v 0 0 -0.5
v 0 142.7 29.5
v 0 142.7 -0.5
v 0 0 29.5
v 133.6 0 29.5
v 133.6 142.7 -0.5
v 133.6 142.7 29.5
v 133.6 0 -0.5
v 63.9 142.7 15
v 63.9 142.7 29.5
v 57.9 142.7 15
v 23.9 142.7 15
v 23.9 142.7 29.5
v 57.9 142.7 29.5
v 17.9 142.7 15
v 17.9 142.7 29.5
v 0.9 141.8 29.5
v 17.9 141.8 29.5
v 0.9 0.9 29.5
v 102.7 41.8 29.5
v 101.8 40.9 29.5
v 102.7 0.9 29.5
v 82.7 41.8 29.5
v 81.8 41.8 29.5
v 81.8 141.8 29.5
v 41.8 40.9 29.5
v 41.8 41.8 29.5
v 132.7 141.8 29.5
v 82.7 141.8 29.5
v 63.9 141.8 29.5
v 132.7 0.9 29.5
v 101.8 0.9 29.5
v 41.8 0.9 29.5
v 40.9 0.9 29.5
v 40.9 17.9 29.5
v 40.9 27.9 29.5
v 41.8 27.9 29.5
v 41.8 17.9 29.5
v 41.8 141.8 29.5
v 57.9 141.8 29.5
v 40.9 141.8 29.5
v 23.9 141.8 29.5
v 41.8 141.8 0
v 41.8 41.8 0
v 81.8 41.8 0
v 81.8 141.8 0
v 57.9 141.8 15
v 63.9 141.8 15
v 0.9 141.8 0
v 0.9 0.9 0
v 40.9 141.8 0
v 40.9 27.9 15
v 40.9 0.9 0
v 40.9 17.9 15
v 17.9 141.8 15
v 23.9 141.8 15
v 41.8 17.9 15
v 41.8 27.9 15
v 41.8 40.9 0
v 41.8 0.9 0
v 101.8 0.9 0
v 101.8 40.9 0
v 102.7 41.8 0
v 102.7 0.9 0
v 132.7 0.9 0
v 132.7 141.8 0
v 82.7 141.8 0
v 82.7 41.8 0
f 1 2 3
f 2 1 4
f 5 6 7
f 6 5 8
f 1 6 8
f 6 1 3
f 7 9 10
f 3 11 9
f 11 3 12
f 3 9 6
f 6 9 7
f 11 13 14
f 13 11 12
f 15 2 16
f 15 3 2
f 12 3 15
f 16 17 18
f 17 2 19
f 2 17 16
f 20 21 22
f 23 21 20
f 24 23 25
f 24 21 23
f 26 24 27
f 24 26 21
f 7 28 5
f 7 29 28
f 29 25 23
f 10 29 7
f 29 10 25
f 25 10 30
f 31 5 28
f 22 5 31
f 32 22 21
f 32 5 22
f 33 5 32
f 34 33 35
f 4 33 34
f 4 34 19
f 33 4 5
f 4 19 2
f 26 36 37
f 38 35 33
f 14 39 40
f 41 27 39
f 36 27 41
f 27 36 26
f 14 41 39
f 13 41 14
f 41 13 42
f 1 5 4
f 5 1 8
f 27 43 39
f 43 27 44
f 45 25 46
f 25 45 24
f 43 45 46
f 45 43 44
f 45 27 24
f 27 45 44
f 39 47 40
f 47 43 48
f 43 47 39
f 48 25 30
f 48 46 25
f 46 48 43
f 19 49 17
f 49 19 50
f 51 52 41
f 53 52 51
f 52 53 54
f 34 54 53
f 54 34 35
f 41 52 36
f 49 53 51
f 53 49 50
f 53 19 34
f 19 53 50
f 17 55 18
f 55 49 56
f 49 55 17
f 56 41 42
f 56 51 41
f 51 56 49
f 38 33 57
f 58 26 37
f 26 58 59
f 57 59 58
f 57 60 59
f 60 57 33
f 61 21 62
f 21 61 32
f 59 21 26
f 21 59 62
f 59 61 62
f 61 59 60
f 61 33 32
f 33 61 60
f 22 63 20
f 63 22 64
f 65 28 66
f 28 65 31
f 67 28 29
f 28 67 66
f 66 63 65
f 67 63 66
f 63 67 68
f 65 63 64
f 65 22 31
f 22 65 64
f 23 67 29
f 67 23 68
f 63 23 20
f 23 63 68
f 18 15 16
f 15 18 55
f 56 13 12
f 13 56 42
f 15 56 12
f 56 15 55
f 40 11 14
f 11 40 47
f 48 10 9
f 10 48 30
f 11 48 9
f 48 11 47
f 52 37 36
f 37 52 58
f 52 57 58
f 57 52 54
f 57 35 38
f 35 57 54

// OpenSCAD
first_layer_height = 0.20;
layer_height = 0.15;
layer_width = 0.45;

$fn = 64;

wall_thickness = 2*layer_width;
bottom_thickness = first_layer_height + 2*layer_height;
height = 30;

block_x = 40;
block_y = 100;
cable1_x = 40;
cable1_y = 140+wall_thickness;
bat_x = 60;
bat_y = 40;
cable2_xu = 30;
cable2_xo = 50;
cable2_y = 140+wall_thickness;

outer_x = 4*wall_thickness+cable1_x+block_x+cable2_xo;
outer_y = 2*wall_thickness+cable1_y;

hole=6;
hole_off=height/2;

difference() {
    translate([0,0,-bottom_thickness])
    linear_extrude(height) {
    polygon([
      [0,0],
      [outer_x,0],
      [outer_x,outer_y],
      [0,outer_y],
      ]);}

    translate([2*wall_thickness+cable1_x,2*wall_thickness+bat_y])
    cube([block_x,block_y,height]);

    translate([wall_thickness,wall_thickness])
    cube([cable1_x,cable1_y,height]);
    
    translate([2*wall_thickness+cable1_x,wall_thickness])
    cube([bat_x,bat_y,height]);
    
    translate([3*wall_thickness+cable1_x+bat_x,wall_thickness])
    cube([cable2_xu,cable2_y,height]);
    translate([3*wall_thickness+cable1_x+block_x,2*wall_thickness+bat_y])
    cube([cable2_xo,block_y,height]);
    
    translate([wall_thickness+(cable1_x/2-hole/2),cable1_y,hole_off])
    #cube([hole,10,20]);
      
    translate([wall_thickness+cable1_x+(block_x/2-hole/2),cable1_y,hole_off])
    #cube([hole,10,20]);
      
    translate([wall_thickness+cable1_x,wall_thickness+(bat_y/2-hole/2),hole_off])
    #cube([hole,10,20]);
}
